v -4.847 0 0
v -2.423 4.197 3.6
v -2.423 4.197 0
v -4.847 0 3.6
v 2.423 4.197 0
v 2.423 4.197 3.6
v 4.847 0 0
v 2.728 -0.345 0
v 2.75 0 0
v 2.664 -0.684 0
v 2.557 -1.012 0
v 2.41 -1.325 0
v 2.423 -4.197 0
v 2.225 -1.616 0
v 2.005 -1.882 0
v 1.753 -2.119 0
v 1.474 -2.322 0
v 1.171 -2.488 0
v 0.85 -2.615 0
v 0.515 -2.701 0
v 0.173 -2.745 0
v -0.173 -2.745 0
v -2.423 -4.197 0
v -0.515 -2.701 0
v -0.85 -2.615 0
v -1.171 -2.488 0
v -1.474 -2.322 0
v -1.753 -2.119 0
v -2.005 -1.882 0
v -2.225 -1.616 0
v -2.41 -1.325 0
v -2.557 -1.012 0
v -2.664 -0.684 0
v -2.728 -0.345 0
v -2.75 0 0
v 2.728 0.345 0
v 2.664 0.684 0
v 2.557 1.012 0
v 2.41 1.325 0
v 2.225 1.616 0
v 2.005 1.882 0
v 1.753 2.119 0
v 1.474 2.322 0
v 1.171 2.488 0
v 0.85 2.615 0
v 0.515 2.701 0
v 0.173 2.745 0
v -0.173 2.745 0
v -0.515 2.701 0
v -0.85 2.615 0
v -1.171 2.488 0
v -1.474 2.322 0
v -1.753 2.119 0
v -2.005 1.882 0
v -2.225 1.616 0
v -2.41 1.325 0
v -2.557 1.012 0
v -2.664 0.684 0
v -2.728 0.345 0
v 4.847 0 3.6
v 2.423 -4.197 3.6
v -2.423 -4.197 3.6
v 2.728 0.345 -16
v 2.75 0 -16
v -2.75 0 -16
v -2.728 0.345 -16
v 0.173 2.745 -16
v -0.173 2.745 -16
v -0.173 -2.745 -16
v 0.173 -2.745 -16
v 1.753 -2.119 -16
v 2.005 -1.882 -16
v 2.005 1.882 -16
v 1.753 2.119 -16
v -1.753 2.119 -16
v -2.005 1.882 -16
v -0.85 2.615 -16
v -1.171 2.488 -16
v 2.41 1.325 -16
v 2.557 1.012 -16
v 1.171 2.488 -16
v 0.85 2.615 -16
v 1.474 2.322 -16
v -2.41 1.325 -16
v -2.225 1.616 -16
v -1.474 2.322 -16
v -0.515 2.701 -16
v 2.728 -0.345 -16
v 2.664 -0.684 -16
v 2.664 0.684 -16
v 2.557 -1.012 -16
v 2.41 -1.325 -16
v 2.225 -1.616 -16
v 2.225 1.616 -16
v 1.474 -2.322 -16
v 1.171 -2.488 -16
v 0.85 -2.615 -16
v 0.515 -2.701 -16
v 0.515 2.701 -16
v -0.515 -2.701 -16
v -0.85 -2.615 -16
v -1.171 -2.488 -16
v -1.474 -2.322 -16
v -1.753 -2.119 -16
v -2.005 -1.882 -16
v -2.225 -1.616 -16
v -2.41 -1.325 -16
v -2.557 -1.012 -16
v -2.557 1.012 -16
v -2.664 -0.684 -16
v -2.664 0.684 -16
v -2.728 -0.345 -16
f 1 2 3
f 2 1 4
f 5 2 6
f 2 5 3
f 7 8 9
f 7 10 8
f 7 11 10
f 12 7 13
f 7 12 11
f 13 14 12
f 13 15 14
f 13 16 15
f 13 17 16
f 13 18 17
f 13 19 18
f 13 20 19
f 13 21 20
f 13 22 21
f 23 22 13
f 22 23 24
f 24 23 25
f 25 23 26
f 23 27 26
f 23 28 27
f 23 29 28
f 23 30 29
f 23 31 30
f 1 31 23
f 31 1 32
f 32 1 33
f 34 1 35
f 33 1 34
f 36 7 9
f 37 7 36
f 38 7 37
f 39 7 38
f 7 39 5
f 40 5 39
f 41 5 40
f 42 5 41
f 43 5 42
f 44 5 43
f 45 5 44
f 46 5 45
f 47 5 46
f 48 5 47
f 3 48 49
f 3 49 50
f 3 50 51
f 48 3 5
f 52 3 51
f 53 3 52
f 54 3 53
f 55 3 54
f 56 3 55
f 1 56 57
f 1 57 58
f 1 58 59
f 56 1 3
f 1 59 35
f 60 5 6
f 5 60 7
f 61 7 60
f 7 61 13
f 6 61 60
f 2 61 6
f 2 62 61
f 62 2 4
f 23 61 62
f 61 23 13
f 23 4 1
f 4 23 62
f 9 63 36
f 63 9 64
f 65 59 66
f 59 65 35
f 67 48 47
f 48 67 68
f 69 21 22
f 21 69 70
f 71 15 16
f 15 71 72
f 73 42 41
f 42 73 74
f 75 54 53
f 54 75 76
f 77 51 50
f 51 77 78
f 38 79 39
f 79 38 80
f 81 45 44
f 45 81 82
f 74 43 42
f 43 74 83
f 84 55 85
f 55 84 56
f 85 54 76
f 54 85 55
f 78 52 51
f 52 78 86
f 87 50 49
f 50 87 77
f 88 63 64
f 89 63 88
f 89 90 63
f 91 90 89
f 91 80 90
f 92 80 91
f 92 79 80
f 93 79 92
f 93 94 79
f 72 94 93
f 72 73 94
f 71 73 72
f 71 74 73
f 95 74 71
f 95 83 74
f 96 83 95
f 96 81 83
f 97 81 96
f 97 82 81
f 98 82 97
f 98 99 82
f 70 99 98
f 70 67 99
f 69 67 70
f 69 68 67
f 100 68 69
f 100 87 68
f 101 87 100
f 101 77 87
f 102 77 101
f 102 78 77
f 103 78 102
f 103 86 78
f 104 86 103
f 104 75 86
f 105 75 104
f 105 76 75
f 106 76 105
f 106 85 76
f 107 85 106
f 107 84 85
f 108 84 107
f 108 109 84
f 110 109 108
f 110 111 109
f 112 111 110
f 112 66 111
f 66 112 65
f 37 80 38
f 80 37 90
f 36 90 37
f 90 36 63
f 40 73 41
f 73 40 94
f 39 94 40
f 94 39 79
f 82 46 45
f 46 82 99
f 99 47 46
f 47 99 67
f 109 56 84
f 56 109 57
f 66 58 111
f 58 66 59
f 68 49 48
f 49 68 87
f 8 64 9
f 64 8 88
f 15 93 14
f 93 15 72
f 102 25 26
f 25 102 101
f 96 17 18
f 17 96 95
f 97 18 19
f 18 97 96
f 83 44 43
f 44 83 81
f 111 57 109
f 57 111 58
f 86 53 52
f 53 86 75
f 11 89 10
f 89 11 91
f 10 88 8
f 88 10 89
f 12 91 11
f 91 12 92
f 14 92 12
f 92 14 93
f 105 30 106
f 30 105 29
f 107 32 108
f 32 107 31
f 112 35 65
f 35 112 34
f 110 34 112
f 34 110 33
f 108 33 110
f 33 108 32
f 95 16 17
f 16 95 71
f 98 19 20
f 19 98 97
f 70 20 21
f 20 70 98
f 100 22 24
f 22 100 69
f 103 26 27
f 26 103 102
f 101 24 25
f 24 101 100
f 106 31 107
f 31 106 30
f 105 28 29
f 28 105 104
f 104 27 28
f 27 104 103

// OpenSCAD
$fn = 50;


difference() {
	union() {
		translate(v = [0, 0, 0]) {
			rotate(a = [0, 0, 0]) {
				translate(v = [0, 0, 0]) {
					rotate(a = [0, 0, 0]) {
						linear_extrude(height = 3.6000000000) {
							polygon(points = [[4.8468000000, 0.0000000000], [2.4234000000, 4.1974519271], [-2.4234000000, 4.1974519271], [-4.8468000000, 0.0000000000], [-2.4234000000, -4.1974519271], [2.4234000000, -4.1974519271]]);
						}
					}
				}
			}
		}
		translate(v = [0, 0, -16]) {
			rotate(a = [0, 0, 0]) {
				cylinder(h = 16, r = 2.7500000000);
			}
		}
	}
	union();
}
